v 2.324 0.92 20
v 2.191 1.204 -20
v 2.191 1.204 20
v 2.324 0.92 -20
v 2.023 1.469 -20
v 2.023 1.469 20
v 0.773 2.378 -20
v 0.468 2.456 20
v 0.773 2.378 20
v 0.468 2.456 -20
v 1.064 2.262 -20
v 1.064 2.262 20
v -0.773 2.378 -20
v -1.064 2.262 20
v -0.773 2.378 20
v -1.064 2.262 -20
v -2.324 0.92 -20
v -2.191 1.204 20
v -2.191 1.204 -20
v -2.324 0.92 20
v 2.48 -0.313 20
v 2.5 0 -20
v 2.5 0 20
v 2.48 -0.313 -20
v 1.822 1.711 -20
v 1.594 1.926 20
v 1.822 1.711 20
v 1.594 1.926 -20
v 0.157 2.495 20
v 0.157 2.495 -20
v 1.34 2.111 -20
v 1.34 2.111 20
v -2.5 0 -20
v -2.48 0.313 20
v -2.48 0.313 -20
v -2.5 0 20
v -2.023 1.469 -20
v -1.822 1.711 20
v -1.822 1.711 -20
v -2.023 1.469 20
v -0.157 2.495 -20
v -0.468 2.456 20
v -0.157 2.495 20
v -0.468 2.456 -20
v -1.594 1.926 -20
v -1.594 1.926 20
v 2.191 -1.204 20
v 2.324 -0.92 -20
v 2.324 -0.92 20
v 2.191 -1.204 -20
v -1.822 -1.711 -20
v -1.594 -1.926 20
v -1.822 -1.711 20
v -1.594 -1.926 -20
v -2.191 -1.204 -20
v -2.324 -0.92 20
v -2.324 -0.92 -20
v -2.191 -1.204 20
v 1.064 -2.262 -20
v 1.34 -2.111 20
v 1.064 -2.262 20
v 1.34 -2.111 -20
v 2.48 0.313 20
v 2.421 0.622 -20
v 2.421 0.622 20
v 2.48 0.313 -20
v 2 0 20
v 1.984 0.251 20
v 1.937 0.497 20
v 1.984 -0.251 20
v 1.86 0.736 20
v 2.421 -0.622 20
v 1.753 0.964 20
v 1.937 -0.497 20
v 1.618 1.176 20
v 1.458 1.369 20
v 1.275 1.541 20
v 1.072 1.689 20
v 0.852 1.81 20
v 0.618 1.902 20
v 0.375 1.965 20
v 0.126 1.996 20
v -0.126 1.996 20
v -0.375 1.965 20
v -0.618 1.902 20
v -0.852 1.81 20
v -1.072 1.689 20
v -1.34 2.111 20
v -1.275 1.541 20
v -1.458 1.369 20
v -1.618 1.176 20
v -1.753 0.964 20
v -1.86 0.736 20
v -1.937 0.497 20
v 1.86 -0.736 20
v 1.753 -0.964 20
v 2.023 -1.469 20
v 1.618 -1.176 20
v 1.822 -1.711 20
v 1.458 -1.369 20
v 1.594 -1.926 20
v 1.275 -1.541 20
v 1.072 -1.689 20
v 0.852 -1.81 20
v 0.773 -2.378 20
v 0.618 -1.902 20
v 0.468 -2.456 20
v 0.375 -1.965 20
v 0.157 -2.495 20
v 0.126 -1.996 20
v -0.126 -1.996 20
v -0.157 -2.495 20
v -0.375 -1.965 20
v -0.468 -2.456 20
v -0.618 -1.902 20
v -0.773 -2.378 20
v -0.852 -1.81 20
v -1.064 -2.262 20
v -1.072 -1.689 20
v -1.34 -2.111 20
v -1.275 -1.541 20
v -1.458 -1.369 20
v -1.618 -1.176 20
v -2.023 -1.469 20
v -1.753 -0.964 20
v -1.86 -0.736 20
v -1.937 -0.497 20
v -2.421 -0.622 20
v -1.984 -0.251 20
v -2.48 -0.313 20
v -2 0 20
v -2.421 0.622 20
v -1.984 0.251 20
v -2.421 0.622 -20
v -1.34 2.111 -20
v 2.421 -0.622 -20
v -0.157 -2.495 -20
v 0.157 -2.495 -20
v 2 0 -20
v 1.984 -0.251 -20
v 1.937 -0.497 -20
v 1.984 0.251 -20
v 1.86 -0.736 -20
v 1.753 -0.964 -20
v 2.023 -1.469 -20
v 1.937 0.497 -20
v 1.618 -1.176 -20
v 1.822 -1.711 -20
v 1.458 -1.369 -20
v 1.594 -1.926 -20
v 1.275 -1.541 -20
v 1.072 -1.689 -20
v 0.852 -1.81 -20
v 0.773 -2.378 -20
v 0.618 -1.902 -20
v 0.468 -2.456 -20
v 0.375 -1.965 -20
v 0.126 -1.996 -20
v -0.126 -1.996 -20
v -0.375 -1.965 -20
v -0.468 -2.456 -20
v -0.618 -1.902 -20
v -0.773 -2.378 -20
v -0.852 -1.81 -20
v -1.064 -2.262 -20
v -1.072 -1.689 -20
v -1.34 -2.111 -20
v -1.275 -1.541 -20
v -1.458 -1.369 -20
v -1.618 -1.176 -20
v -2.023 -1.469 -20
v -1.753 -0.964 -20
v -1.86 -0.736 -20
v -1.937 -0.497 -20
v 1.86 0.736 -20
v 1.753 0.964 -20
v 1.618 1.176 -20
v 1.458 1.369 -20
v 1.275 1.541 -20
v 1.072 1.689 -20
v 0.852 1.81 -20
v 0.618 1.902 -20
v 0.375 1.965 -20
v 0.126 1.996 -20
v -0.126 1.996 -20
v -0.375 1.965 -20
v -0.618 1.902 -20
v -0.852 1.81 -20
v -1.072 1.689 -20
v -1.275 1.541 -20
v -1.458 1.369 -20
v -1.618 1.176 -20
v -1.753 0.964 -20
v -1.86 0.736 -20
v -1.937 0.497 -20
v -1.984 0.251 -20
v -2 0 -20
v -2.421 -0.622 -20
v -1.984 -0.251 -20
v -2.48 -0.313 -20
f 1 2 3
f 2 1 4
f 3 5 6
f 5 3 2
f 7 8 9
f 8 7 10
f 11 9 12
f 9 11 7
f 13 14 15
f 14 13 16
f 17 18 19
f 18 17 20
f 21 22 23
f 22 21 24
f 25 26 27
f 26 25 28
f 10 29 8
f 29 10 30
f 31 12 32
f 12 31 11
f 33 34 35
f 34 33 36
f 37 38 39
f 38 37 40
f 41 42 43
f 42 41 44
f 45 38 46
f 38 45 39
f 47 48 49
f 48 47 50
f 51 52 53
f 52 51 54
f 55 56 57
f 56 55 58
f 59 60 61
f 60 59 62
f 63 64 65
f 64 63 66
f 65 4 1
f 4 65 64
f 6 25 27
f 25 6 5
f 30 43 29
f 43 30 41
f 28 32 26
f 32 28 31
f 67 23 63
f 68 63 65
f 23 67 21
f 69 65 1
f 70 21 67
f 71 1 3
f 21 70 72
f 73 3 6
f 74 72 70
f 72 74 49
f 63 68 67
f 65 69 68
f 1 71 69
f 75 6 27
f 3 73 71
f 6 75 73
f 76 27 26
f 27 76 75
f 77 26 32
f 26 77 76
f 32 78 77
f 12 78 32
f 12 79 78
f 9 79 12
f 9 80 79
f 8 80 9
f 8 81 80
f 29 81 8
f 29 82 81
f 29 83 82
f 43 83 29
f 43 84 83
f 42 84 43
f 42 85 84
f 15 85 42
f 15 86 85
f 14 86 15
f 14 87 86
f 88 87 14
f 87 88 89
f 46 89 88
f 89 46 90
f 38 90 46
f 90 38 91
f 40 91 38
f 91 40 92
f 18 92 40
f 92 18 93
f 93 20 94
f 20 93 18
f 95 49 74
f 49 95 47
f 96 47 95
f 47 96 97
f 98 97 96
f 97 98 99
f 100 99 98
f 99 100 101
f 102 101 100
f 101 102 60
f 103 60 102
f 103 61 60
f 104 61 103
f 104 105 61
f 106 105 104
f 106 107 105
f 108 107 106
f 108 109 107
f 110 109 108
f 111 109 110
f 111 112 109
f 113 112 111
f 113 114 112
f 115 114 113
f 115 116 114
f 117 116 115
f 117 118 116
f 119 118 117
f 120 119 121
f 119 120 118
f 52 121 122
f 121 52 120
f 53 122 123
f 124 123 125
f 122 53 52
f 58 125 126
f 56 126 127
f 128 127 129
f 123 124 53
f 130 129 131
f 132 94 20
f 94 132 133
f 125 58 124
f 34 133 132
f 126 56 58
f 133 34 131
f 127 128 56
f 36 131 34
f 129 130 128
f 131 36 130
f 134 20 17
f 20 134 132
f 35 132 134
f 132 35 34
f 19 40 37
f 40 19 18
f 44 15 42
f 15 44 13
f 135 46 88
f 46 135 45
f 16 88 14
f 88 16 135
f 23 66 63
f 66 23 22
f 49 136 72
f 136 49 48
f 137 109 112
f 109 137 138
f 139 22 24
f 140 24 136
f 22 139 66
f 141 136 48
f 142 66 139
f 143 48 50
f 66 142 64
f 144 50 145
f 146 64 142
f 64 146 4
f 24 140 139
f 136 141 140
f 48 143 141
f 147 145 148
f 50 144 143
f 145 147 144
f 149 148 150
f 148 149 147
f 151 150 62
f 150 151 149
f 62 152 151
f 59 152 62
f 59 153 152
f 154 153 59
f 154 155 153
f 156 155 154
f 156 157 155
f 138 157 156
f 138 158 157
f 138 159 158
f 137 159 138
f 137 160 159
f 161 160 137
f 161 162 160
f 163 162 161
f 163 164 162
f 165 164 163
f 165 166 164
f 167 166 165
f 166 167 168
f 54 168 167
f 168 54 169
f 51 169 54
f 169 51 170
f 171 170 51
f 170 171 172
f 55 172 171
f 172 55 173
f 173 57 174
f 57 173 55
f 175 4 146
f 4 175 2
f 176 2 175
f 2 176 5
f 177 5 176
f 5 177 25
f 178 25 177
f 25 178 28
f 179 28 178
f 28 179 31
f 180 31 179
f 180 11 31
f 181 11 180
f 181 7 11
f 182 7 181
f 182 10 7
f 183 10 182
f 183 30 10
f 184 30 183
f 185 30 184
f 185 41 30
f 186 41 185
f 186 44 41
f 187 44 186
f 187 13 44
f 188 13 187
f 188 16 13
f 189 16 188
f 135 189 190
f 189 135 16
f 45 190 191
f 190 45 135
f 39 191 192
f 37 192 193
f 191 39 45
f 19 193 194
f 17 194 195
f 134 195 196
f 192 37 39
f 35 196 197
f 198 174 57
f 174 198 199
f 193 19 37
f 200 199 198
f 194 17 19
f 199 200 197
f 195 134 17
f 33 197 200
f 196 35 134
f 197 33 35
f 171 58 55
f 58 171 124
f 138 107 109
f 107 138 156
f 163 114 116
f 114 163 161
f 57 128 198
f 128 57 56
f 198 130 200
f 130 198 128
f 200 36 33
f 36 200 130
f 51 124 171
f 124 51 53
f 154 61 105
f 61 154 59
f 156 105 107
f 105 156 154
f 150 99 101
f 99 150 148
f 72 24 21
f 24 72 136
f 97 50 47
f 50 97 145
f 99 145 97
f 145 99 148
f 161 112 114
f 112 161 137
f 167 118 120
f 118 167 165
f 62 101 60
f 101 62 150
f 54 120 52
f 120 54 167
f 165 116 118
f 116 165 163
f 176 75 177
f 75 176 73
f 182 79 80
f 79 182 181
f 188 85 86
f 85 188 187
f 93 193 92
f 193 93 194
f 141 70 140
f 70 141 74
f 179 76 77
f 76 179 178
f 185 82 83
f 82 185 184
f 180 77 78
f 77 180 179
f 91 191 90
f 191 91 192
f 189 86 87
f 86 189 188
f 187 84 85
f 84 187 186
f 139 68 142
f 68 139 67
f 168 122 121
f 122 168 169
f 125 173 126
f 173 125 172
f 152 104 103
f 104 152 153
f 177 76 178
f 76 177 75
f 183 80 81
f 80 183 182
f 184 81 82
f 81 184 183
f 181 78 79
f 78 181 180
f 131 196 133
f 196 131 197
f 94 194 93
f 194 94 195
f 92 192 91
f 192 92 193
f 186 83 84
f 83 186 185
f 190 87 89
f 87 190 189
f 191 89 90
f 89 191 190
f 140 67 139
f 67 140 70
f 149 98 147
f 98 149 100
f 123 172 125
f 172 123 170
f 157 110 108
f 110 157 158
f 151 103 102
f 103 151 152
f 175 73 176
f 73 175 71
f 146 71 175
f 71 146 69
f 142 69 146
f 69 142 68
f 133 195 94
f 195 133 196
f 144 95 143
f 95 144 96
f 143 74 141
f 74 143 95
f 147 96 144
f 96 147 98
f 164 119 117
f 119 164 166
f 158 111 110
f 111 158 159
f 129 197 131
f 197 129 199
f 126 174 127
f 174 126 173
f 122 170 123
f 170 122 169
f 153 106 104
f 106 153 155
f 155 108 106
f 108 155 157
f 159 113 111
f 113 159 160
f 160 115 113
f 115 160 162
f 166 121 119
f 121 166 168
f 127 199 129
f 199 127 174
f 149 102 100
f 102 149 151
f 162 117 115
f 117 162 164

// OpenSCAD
$fn = 50;


difference() {
	union() {
		translate(v = [0, 0, -20.0000000000]) {
			cylinder(h = 40, r = 2.5000000000);
		}
	}
	union() {
		translate(v = [0, 0, -100.0000000000]) {
			cylinder(h = 200, r = 2);
		}
	}
}
